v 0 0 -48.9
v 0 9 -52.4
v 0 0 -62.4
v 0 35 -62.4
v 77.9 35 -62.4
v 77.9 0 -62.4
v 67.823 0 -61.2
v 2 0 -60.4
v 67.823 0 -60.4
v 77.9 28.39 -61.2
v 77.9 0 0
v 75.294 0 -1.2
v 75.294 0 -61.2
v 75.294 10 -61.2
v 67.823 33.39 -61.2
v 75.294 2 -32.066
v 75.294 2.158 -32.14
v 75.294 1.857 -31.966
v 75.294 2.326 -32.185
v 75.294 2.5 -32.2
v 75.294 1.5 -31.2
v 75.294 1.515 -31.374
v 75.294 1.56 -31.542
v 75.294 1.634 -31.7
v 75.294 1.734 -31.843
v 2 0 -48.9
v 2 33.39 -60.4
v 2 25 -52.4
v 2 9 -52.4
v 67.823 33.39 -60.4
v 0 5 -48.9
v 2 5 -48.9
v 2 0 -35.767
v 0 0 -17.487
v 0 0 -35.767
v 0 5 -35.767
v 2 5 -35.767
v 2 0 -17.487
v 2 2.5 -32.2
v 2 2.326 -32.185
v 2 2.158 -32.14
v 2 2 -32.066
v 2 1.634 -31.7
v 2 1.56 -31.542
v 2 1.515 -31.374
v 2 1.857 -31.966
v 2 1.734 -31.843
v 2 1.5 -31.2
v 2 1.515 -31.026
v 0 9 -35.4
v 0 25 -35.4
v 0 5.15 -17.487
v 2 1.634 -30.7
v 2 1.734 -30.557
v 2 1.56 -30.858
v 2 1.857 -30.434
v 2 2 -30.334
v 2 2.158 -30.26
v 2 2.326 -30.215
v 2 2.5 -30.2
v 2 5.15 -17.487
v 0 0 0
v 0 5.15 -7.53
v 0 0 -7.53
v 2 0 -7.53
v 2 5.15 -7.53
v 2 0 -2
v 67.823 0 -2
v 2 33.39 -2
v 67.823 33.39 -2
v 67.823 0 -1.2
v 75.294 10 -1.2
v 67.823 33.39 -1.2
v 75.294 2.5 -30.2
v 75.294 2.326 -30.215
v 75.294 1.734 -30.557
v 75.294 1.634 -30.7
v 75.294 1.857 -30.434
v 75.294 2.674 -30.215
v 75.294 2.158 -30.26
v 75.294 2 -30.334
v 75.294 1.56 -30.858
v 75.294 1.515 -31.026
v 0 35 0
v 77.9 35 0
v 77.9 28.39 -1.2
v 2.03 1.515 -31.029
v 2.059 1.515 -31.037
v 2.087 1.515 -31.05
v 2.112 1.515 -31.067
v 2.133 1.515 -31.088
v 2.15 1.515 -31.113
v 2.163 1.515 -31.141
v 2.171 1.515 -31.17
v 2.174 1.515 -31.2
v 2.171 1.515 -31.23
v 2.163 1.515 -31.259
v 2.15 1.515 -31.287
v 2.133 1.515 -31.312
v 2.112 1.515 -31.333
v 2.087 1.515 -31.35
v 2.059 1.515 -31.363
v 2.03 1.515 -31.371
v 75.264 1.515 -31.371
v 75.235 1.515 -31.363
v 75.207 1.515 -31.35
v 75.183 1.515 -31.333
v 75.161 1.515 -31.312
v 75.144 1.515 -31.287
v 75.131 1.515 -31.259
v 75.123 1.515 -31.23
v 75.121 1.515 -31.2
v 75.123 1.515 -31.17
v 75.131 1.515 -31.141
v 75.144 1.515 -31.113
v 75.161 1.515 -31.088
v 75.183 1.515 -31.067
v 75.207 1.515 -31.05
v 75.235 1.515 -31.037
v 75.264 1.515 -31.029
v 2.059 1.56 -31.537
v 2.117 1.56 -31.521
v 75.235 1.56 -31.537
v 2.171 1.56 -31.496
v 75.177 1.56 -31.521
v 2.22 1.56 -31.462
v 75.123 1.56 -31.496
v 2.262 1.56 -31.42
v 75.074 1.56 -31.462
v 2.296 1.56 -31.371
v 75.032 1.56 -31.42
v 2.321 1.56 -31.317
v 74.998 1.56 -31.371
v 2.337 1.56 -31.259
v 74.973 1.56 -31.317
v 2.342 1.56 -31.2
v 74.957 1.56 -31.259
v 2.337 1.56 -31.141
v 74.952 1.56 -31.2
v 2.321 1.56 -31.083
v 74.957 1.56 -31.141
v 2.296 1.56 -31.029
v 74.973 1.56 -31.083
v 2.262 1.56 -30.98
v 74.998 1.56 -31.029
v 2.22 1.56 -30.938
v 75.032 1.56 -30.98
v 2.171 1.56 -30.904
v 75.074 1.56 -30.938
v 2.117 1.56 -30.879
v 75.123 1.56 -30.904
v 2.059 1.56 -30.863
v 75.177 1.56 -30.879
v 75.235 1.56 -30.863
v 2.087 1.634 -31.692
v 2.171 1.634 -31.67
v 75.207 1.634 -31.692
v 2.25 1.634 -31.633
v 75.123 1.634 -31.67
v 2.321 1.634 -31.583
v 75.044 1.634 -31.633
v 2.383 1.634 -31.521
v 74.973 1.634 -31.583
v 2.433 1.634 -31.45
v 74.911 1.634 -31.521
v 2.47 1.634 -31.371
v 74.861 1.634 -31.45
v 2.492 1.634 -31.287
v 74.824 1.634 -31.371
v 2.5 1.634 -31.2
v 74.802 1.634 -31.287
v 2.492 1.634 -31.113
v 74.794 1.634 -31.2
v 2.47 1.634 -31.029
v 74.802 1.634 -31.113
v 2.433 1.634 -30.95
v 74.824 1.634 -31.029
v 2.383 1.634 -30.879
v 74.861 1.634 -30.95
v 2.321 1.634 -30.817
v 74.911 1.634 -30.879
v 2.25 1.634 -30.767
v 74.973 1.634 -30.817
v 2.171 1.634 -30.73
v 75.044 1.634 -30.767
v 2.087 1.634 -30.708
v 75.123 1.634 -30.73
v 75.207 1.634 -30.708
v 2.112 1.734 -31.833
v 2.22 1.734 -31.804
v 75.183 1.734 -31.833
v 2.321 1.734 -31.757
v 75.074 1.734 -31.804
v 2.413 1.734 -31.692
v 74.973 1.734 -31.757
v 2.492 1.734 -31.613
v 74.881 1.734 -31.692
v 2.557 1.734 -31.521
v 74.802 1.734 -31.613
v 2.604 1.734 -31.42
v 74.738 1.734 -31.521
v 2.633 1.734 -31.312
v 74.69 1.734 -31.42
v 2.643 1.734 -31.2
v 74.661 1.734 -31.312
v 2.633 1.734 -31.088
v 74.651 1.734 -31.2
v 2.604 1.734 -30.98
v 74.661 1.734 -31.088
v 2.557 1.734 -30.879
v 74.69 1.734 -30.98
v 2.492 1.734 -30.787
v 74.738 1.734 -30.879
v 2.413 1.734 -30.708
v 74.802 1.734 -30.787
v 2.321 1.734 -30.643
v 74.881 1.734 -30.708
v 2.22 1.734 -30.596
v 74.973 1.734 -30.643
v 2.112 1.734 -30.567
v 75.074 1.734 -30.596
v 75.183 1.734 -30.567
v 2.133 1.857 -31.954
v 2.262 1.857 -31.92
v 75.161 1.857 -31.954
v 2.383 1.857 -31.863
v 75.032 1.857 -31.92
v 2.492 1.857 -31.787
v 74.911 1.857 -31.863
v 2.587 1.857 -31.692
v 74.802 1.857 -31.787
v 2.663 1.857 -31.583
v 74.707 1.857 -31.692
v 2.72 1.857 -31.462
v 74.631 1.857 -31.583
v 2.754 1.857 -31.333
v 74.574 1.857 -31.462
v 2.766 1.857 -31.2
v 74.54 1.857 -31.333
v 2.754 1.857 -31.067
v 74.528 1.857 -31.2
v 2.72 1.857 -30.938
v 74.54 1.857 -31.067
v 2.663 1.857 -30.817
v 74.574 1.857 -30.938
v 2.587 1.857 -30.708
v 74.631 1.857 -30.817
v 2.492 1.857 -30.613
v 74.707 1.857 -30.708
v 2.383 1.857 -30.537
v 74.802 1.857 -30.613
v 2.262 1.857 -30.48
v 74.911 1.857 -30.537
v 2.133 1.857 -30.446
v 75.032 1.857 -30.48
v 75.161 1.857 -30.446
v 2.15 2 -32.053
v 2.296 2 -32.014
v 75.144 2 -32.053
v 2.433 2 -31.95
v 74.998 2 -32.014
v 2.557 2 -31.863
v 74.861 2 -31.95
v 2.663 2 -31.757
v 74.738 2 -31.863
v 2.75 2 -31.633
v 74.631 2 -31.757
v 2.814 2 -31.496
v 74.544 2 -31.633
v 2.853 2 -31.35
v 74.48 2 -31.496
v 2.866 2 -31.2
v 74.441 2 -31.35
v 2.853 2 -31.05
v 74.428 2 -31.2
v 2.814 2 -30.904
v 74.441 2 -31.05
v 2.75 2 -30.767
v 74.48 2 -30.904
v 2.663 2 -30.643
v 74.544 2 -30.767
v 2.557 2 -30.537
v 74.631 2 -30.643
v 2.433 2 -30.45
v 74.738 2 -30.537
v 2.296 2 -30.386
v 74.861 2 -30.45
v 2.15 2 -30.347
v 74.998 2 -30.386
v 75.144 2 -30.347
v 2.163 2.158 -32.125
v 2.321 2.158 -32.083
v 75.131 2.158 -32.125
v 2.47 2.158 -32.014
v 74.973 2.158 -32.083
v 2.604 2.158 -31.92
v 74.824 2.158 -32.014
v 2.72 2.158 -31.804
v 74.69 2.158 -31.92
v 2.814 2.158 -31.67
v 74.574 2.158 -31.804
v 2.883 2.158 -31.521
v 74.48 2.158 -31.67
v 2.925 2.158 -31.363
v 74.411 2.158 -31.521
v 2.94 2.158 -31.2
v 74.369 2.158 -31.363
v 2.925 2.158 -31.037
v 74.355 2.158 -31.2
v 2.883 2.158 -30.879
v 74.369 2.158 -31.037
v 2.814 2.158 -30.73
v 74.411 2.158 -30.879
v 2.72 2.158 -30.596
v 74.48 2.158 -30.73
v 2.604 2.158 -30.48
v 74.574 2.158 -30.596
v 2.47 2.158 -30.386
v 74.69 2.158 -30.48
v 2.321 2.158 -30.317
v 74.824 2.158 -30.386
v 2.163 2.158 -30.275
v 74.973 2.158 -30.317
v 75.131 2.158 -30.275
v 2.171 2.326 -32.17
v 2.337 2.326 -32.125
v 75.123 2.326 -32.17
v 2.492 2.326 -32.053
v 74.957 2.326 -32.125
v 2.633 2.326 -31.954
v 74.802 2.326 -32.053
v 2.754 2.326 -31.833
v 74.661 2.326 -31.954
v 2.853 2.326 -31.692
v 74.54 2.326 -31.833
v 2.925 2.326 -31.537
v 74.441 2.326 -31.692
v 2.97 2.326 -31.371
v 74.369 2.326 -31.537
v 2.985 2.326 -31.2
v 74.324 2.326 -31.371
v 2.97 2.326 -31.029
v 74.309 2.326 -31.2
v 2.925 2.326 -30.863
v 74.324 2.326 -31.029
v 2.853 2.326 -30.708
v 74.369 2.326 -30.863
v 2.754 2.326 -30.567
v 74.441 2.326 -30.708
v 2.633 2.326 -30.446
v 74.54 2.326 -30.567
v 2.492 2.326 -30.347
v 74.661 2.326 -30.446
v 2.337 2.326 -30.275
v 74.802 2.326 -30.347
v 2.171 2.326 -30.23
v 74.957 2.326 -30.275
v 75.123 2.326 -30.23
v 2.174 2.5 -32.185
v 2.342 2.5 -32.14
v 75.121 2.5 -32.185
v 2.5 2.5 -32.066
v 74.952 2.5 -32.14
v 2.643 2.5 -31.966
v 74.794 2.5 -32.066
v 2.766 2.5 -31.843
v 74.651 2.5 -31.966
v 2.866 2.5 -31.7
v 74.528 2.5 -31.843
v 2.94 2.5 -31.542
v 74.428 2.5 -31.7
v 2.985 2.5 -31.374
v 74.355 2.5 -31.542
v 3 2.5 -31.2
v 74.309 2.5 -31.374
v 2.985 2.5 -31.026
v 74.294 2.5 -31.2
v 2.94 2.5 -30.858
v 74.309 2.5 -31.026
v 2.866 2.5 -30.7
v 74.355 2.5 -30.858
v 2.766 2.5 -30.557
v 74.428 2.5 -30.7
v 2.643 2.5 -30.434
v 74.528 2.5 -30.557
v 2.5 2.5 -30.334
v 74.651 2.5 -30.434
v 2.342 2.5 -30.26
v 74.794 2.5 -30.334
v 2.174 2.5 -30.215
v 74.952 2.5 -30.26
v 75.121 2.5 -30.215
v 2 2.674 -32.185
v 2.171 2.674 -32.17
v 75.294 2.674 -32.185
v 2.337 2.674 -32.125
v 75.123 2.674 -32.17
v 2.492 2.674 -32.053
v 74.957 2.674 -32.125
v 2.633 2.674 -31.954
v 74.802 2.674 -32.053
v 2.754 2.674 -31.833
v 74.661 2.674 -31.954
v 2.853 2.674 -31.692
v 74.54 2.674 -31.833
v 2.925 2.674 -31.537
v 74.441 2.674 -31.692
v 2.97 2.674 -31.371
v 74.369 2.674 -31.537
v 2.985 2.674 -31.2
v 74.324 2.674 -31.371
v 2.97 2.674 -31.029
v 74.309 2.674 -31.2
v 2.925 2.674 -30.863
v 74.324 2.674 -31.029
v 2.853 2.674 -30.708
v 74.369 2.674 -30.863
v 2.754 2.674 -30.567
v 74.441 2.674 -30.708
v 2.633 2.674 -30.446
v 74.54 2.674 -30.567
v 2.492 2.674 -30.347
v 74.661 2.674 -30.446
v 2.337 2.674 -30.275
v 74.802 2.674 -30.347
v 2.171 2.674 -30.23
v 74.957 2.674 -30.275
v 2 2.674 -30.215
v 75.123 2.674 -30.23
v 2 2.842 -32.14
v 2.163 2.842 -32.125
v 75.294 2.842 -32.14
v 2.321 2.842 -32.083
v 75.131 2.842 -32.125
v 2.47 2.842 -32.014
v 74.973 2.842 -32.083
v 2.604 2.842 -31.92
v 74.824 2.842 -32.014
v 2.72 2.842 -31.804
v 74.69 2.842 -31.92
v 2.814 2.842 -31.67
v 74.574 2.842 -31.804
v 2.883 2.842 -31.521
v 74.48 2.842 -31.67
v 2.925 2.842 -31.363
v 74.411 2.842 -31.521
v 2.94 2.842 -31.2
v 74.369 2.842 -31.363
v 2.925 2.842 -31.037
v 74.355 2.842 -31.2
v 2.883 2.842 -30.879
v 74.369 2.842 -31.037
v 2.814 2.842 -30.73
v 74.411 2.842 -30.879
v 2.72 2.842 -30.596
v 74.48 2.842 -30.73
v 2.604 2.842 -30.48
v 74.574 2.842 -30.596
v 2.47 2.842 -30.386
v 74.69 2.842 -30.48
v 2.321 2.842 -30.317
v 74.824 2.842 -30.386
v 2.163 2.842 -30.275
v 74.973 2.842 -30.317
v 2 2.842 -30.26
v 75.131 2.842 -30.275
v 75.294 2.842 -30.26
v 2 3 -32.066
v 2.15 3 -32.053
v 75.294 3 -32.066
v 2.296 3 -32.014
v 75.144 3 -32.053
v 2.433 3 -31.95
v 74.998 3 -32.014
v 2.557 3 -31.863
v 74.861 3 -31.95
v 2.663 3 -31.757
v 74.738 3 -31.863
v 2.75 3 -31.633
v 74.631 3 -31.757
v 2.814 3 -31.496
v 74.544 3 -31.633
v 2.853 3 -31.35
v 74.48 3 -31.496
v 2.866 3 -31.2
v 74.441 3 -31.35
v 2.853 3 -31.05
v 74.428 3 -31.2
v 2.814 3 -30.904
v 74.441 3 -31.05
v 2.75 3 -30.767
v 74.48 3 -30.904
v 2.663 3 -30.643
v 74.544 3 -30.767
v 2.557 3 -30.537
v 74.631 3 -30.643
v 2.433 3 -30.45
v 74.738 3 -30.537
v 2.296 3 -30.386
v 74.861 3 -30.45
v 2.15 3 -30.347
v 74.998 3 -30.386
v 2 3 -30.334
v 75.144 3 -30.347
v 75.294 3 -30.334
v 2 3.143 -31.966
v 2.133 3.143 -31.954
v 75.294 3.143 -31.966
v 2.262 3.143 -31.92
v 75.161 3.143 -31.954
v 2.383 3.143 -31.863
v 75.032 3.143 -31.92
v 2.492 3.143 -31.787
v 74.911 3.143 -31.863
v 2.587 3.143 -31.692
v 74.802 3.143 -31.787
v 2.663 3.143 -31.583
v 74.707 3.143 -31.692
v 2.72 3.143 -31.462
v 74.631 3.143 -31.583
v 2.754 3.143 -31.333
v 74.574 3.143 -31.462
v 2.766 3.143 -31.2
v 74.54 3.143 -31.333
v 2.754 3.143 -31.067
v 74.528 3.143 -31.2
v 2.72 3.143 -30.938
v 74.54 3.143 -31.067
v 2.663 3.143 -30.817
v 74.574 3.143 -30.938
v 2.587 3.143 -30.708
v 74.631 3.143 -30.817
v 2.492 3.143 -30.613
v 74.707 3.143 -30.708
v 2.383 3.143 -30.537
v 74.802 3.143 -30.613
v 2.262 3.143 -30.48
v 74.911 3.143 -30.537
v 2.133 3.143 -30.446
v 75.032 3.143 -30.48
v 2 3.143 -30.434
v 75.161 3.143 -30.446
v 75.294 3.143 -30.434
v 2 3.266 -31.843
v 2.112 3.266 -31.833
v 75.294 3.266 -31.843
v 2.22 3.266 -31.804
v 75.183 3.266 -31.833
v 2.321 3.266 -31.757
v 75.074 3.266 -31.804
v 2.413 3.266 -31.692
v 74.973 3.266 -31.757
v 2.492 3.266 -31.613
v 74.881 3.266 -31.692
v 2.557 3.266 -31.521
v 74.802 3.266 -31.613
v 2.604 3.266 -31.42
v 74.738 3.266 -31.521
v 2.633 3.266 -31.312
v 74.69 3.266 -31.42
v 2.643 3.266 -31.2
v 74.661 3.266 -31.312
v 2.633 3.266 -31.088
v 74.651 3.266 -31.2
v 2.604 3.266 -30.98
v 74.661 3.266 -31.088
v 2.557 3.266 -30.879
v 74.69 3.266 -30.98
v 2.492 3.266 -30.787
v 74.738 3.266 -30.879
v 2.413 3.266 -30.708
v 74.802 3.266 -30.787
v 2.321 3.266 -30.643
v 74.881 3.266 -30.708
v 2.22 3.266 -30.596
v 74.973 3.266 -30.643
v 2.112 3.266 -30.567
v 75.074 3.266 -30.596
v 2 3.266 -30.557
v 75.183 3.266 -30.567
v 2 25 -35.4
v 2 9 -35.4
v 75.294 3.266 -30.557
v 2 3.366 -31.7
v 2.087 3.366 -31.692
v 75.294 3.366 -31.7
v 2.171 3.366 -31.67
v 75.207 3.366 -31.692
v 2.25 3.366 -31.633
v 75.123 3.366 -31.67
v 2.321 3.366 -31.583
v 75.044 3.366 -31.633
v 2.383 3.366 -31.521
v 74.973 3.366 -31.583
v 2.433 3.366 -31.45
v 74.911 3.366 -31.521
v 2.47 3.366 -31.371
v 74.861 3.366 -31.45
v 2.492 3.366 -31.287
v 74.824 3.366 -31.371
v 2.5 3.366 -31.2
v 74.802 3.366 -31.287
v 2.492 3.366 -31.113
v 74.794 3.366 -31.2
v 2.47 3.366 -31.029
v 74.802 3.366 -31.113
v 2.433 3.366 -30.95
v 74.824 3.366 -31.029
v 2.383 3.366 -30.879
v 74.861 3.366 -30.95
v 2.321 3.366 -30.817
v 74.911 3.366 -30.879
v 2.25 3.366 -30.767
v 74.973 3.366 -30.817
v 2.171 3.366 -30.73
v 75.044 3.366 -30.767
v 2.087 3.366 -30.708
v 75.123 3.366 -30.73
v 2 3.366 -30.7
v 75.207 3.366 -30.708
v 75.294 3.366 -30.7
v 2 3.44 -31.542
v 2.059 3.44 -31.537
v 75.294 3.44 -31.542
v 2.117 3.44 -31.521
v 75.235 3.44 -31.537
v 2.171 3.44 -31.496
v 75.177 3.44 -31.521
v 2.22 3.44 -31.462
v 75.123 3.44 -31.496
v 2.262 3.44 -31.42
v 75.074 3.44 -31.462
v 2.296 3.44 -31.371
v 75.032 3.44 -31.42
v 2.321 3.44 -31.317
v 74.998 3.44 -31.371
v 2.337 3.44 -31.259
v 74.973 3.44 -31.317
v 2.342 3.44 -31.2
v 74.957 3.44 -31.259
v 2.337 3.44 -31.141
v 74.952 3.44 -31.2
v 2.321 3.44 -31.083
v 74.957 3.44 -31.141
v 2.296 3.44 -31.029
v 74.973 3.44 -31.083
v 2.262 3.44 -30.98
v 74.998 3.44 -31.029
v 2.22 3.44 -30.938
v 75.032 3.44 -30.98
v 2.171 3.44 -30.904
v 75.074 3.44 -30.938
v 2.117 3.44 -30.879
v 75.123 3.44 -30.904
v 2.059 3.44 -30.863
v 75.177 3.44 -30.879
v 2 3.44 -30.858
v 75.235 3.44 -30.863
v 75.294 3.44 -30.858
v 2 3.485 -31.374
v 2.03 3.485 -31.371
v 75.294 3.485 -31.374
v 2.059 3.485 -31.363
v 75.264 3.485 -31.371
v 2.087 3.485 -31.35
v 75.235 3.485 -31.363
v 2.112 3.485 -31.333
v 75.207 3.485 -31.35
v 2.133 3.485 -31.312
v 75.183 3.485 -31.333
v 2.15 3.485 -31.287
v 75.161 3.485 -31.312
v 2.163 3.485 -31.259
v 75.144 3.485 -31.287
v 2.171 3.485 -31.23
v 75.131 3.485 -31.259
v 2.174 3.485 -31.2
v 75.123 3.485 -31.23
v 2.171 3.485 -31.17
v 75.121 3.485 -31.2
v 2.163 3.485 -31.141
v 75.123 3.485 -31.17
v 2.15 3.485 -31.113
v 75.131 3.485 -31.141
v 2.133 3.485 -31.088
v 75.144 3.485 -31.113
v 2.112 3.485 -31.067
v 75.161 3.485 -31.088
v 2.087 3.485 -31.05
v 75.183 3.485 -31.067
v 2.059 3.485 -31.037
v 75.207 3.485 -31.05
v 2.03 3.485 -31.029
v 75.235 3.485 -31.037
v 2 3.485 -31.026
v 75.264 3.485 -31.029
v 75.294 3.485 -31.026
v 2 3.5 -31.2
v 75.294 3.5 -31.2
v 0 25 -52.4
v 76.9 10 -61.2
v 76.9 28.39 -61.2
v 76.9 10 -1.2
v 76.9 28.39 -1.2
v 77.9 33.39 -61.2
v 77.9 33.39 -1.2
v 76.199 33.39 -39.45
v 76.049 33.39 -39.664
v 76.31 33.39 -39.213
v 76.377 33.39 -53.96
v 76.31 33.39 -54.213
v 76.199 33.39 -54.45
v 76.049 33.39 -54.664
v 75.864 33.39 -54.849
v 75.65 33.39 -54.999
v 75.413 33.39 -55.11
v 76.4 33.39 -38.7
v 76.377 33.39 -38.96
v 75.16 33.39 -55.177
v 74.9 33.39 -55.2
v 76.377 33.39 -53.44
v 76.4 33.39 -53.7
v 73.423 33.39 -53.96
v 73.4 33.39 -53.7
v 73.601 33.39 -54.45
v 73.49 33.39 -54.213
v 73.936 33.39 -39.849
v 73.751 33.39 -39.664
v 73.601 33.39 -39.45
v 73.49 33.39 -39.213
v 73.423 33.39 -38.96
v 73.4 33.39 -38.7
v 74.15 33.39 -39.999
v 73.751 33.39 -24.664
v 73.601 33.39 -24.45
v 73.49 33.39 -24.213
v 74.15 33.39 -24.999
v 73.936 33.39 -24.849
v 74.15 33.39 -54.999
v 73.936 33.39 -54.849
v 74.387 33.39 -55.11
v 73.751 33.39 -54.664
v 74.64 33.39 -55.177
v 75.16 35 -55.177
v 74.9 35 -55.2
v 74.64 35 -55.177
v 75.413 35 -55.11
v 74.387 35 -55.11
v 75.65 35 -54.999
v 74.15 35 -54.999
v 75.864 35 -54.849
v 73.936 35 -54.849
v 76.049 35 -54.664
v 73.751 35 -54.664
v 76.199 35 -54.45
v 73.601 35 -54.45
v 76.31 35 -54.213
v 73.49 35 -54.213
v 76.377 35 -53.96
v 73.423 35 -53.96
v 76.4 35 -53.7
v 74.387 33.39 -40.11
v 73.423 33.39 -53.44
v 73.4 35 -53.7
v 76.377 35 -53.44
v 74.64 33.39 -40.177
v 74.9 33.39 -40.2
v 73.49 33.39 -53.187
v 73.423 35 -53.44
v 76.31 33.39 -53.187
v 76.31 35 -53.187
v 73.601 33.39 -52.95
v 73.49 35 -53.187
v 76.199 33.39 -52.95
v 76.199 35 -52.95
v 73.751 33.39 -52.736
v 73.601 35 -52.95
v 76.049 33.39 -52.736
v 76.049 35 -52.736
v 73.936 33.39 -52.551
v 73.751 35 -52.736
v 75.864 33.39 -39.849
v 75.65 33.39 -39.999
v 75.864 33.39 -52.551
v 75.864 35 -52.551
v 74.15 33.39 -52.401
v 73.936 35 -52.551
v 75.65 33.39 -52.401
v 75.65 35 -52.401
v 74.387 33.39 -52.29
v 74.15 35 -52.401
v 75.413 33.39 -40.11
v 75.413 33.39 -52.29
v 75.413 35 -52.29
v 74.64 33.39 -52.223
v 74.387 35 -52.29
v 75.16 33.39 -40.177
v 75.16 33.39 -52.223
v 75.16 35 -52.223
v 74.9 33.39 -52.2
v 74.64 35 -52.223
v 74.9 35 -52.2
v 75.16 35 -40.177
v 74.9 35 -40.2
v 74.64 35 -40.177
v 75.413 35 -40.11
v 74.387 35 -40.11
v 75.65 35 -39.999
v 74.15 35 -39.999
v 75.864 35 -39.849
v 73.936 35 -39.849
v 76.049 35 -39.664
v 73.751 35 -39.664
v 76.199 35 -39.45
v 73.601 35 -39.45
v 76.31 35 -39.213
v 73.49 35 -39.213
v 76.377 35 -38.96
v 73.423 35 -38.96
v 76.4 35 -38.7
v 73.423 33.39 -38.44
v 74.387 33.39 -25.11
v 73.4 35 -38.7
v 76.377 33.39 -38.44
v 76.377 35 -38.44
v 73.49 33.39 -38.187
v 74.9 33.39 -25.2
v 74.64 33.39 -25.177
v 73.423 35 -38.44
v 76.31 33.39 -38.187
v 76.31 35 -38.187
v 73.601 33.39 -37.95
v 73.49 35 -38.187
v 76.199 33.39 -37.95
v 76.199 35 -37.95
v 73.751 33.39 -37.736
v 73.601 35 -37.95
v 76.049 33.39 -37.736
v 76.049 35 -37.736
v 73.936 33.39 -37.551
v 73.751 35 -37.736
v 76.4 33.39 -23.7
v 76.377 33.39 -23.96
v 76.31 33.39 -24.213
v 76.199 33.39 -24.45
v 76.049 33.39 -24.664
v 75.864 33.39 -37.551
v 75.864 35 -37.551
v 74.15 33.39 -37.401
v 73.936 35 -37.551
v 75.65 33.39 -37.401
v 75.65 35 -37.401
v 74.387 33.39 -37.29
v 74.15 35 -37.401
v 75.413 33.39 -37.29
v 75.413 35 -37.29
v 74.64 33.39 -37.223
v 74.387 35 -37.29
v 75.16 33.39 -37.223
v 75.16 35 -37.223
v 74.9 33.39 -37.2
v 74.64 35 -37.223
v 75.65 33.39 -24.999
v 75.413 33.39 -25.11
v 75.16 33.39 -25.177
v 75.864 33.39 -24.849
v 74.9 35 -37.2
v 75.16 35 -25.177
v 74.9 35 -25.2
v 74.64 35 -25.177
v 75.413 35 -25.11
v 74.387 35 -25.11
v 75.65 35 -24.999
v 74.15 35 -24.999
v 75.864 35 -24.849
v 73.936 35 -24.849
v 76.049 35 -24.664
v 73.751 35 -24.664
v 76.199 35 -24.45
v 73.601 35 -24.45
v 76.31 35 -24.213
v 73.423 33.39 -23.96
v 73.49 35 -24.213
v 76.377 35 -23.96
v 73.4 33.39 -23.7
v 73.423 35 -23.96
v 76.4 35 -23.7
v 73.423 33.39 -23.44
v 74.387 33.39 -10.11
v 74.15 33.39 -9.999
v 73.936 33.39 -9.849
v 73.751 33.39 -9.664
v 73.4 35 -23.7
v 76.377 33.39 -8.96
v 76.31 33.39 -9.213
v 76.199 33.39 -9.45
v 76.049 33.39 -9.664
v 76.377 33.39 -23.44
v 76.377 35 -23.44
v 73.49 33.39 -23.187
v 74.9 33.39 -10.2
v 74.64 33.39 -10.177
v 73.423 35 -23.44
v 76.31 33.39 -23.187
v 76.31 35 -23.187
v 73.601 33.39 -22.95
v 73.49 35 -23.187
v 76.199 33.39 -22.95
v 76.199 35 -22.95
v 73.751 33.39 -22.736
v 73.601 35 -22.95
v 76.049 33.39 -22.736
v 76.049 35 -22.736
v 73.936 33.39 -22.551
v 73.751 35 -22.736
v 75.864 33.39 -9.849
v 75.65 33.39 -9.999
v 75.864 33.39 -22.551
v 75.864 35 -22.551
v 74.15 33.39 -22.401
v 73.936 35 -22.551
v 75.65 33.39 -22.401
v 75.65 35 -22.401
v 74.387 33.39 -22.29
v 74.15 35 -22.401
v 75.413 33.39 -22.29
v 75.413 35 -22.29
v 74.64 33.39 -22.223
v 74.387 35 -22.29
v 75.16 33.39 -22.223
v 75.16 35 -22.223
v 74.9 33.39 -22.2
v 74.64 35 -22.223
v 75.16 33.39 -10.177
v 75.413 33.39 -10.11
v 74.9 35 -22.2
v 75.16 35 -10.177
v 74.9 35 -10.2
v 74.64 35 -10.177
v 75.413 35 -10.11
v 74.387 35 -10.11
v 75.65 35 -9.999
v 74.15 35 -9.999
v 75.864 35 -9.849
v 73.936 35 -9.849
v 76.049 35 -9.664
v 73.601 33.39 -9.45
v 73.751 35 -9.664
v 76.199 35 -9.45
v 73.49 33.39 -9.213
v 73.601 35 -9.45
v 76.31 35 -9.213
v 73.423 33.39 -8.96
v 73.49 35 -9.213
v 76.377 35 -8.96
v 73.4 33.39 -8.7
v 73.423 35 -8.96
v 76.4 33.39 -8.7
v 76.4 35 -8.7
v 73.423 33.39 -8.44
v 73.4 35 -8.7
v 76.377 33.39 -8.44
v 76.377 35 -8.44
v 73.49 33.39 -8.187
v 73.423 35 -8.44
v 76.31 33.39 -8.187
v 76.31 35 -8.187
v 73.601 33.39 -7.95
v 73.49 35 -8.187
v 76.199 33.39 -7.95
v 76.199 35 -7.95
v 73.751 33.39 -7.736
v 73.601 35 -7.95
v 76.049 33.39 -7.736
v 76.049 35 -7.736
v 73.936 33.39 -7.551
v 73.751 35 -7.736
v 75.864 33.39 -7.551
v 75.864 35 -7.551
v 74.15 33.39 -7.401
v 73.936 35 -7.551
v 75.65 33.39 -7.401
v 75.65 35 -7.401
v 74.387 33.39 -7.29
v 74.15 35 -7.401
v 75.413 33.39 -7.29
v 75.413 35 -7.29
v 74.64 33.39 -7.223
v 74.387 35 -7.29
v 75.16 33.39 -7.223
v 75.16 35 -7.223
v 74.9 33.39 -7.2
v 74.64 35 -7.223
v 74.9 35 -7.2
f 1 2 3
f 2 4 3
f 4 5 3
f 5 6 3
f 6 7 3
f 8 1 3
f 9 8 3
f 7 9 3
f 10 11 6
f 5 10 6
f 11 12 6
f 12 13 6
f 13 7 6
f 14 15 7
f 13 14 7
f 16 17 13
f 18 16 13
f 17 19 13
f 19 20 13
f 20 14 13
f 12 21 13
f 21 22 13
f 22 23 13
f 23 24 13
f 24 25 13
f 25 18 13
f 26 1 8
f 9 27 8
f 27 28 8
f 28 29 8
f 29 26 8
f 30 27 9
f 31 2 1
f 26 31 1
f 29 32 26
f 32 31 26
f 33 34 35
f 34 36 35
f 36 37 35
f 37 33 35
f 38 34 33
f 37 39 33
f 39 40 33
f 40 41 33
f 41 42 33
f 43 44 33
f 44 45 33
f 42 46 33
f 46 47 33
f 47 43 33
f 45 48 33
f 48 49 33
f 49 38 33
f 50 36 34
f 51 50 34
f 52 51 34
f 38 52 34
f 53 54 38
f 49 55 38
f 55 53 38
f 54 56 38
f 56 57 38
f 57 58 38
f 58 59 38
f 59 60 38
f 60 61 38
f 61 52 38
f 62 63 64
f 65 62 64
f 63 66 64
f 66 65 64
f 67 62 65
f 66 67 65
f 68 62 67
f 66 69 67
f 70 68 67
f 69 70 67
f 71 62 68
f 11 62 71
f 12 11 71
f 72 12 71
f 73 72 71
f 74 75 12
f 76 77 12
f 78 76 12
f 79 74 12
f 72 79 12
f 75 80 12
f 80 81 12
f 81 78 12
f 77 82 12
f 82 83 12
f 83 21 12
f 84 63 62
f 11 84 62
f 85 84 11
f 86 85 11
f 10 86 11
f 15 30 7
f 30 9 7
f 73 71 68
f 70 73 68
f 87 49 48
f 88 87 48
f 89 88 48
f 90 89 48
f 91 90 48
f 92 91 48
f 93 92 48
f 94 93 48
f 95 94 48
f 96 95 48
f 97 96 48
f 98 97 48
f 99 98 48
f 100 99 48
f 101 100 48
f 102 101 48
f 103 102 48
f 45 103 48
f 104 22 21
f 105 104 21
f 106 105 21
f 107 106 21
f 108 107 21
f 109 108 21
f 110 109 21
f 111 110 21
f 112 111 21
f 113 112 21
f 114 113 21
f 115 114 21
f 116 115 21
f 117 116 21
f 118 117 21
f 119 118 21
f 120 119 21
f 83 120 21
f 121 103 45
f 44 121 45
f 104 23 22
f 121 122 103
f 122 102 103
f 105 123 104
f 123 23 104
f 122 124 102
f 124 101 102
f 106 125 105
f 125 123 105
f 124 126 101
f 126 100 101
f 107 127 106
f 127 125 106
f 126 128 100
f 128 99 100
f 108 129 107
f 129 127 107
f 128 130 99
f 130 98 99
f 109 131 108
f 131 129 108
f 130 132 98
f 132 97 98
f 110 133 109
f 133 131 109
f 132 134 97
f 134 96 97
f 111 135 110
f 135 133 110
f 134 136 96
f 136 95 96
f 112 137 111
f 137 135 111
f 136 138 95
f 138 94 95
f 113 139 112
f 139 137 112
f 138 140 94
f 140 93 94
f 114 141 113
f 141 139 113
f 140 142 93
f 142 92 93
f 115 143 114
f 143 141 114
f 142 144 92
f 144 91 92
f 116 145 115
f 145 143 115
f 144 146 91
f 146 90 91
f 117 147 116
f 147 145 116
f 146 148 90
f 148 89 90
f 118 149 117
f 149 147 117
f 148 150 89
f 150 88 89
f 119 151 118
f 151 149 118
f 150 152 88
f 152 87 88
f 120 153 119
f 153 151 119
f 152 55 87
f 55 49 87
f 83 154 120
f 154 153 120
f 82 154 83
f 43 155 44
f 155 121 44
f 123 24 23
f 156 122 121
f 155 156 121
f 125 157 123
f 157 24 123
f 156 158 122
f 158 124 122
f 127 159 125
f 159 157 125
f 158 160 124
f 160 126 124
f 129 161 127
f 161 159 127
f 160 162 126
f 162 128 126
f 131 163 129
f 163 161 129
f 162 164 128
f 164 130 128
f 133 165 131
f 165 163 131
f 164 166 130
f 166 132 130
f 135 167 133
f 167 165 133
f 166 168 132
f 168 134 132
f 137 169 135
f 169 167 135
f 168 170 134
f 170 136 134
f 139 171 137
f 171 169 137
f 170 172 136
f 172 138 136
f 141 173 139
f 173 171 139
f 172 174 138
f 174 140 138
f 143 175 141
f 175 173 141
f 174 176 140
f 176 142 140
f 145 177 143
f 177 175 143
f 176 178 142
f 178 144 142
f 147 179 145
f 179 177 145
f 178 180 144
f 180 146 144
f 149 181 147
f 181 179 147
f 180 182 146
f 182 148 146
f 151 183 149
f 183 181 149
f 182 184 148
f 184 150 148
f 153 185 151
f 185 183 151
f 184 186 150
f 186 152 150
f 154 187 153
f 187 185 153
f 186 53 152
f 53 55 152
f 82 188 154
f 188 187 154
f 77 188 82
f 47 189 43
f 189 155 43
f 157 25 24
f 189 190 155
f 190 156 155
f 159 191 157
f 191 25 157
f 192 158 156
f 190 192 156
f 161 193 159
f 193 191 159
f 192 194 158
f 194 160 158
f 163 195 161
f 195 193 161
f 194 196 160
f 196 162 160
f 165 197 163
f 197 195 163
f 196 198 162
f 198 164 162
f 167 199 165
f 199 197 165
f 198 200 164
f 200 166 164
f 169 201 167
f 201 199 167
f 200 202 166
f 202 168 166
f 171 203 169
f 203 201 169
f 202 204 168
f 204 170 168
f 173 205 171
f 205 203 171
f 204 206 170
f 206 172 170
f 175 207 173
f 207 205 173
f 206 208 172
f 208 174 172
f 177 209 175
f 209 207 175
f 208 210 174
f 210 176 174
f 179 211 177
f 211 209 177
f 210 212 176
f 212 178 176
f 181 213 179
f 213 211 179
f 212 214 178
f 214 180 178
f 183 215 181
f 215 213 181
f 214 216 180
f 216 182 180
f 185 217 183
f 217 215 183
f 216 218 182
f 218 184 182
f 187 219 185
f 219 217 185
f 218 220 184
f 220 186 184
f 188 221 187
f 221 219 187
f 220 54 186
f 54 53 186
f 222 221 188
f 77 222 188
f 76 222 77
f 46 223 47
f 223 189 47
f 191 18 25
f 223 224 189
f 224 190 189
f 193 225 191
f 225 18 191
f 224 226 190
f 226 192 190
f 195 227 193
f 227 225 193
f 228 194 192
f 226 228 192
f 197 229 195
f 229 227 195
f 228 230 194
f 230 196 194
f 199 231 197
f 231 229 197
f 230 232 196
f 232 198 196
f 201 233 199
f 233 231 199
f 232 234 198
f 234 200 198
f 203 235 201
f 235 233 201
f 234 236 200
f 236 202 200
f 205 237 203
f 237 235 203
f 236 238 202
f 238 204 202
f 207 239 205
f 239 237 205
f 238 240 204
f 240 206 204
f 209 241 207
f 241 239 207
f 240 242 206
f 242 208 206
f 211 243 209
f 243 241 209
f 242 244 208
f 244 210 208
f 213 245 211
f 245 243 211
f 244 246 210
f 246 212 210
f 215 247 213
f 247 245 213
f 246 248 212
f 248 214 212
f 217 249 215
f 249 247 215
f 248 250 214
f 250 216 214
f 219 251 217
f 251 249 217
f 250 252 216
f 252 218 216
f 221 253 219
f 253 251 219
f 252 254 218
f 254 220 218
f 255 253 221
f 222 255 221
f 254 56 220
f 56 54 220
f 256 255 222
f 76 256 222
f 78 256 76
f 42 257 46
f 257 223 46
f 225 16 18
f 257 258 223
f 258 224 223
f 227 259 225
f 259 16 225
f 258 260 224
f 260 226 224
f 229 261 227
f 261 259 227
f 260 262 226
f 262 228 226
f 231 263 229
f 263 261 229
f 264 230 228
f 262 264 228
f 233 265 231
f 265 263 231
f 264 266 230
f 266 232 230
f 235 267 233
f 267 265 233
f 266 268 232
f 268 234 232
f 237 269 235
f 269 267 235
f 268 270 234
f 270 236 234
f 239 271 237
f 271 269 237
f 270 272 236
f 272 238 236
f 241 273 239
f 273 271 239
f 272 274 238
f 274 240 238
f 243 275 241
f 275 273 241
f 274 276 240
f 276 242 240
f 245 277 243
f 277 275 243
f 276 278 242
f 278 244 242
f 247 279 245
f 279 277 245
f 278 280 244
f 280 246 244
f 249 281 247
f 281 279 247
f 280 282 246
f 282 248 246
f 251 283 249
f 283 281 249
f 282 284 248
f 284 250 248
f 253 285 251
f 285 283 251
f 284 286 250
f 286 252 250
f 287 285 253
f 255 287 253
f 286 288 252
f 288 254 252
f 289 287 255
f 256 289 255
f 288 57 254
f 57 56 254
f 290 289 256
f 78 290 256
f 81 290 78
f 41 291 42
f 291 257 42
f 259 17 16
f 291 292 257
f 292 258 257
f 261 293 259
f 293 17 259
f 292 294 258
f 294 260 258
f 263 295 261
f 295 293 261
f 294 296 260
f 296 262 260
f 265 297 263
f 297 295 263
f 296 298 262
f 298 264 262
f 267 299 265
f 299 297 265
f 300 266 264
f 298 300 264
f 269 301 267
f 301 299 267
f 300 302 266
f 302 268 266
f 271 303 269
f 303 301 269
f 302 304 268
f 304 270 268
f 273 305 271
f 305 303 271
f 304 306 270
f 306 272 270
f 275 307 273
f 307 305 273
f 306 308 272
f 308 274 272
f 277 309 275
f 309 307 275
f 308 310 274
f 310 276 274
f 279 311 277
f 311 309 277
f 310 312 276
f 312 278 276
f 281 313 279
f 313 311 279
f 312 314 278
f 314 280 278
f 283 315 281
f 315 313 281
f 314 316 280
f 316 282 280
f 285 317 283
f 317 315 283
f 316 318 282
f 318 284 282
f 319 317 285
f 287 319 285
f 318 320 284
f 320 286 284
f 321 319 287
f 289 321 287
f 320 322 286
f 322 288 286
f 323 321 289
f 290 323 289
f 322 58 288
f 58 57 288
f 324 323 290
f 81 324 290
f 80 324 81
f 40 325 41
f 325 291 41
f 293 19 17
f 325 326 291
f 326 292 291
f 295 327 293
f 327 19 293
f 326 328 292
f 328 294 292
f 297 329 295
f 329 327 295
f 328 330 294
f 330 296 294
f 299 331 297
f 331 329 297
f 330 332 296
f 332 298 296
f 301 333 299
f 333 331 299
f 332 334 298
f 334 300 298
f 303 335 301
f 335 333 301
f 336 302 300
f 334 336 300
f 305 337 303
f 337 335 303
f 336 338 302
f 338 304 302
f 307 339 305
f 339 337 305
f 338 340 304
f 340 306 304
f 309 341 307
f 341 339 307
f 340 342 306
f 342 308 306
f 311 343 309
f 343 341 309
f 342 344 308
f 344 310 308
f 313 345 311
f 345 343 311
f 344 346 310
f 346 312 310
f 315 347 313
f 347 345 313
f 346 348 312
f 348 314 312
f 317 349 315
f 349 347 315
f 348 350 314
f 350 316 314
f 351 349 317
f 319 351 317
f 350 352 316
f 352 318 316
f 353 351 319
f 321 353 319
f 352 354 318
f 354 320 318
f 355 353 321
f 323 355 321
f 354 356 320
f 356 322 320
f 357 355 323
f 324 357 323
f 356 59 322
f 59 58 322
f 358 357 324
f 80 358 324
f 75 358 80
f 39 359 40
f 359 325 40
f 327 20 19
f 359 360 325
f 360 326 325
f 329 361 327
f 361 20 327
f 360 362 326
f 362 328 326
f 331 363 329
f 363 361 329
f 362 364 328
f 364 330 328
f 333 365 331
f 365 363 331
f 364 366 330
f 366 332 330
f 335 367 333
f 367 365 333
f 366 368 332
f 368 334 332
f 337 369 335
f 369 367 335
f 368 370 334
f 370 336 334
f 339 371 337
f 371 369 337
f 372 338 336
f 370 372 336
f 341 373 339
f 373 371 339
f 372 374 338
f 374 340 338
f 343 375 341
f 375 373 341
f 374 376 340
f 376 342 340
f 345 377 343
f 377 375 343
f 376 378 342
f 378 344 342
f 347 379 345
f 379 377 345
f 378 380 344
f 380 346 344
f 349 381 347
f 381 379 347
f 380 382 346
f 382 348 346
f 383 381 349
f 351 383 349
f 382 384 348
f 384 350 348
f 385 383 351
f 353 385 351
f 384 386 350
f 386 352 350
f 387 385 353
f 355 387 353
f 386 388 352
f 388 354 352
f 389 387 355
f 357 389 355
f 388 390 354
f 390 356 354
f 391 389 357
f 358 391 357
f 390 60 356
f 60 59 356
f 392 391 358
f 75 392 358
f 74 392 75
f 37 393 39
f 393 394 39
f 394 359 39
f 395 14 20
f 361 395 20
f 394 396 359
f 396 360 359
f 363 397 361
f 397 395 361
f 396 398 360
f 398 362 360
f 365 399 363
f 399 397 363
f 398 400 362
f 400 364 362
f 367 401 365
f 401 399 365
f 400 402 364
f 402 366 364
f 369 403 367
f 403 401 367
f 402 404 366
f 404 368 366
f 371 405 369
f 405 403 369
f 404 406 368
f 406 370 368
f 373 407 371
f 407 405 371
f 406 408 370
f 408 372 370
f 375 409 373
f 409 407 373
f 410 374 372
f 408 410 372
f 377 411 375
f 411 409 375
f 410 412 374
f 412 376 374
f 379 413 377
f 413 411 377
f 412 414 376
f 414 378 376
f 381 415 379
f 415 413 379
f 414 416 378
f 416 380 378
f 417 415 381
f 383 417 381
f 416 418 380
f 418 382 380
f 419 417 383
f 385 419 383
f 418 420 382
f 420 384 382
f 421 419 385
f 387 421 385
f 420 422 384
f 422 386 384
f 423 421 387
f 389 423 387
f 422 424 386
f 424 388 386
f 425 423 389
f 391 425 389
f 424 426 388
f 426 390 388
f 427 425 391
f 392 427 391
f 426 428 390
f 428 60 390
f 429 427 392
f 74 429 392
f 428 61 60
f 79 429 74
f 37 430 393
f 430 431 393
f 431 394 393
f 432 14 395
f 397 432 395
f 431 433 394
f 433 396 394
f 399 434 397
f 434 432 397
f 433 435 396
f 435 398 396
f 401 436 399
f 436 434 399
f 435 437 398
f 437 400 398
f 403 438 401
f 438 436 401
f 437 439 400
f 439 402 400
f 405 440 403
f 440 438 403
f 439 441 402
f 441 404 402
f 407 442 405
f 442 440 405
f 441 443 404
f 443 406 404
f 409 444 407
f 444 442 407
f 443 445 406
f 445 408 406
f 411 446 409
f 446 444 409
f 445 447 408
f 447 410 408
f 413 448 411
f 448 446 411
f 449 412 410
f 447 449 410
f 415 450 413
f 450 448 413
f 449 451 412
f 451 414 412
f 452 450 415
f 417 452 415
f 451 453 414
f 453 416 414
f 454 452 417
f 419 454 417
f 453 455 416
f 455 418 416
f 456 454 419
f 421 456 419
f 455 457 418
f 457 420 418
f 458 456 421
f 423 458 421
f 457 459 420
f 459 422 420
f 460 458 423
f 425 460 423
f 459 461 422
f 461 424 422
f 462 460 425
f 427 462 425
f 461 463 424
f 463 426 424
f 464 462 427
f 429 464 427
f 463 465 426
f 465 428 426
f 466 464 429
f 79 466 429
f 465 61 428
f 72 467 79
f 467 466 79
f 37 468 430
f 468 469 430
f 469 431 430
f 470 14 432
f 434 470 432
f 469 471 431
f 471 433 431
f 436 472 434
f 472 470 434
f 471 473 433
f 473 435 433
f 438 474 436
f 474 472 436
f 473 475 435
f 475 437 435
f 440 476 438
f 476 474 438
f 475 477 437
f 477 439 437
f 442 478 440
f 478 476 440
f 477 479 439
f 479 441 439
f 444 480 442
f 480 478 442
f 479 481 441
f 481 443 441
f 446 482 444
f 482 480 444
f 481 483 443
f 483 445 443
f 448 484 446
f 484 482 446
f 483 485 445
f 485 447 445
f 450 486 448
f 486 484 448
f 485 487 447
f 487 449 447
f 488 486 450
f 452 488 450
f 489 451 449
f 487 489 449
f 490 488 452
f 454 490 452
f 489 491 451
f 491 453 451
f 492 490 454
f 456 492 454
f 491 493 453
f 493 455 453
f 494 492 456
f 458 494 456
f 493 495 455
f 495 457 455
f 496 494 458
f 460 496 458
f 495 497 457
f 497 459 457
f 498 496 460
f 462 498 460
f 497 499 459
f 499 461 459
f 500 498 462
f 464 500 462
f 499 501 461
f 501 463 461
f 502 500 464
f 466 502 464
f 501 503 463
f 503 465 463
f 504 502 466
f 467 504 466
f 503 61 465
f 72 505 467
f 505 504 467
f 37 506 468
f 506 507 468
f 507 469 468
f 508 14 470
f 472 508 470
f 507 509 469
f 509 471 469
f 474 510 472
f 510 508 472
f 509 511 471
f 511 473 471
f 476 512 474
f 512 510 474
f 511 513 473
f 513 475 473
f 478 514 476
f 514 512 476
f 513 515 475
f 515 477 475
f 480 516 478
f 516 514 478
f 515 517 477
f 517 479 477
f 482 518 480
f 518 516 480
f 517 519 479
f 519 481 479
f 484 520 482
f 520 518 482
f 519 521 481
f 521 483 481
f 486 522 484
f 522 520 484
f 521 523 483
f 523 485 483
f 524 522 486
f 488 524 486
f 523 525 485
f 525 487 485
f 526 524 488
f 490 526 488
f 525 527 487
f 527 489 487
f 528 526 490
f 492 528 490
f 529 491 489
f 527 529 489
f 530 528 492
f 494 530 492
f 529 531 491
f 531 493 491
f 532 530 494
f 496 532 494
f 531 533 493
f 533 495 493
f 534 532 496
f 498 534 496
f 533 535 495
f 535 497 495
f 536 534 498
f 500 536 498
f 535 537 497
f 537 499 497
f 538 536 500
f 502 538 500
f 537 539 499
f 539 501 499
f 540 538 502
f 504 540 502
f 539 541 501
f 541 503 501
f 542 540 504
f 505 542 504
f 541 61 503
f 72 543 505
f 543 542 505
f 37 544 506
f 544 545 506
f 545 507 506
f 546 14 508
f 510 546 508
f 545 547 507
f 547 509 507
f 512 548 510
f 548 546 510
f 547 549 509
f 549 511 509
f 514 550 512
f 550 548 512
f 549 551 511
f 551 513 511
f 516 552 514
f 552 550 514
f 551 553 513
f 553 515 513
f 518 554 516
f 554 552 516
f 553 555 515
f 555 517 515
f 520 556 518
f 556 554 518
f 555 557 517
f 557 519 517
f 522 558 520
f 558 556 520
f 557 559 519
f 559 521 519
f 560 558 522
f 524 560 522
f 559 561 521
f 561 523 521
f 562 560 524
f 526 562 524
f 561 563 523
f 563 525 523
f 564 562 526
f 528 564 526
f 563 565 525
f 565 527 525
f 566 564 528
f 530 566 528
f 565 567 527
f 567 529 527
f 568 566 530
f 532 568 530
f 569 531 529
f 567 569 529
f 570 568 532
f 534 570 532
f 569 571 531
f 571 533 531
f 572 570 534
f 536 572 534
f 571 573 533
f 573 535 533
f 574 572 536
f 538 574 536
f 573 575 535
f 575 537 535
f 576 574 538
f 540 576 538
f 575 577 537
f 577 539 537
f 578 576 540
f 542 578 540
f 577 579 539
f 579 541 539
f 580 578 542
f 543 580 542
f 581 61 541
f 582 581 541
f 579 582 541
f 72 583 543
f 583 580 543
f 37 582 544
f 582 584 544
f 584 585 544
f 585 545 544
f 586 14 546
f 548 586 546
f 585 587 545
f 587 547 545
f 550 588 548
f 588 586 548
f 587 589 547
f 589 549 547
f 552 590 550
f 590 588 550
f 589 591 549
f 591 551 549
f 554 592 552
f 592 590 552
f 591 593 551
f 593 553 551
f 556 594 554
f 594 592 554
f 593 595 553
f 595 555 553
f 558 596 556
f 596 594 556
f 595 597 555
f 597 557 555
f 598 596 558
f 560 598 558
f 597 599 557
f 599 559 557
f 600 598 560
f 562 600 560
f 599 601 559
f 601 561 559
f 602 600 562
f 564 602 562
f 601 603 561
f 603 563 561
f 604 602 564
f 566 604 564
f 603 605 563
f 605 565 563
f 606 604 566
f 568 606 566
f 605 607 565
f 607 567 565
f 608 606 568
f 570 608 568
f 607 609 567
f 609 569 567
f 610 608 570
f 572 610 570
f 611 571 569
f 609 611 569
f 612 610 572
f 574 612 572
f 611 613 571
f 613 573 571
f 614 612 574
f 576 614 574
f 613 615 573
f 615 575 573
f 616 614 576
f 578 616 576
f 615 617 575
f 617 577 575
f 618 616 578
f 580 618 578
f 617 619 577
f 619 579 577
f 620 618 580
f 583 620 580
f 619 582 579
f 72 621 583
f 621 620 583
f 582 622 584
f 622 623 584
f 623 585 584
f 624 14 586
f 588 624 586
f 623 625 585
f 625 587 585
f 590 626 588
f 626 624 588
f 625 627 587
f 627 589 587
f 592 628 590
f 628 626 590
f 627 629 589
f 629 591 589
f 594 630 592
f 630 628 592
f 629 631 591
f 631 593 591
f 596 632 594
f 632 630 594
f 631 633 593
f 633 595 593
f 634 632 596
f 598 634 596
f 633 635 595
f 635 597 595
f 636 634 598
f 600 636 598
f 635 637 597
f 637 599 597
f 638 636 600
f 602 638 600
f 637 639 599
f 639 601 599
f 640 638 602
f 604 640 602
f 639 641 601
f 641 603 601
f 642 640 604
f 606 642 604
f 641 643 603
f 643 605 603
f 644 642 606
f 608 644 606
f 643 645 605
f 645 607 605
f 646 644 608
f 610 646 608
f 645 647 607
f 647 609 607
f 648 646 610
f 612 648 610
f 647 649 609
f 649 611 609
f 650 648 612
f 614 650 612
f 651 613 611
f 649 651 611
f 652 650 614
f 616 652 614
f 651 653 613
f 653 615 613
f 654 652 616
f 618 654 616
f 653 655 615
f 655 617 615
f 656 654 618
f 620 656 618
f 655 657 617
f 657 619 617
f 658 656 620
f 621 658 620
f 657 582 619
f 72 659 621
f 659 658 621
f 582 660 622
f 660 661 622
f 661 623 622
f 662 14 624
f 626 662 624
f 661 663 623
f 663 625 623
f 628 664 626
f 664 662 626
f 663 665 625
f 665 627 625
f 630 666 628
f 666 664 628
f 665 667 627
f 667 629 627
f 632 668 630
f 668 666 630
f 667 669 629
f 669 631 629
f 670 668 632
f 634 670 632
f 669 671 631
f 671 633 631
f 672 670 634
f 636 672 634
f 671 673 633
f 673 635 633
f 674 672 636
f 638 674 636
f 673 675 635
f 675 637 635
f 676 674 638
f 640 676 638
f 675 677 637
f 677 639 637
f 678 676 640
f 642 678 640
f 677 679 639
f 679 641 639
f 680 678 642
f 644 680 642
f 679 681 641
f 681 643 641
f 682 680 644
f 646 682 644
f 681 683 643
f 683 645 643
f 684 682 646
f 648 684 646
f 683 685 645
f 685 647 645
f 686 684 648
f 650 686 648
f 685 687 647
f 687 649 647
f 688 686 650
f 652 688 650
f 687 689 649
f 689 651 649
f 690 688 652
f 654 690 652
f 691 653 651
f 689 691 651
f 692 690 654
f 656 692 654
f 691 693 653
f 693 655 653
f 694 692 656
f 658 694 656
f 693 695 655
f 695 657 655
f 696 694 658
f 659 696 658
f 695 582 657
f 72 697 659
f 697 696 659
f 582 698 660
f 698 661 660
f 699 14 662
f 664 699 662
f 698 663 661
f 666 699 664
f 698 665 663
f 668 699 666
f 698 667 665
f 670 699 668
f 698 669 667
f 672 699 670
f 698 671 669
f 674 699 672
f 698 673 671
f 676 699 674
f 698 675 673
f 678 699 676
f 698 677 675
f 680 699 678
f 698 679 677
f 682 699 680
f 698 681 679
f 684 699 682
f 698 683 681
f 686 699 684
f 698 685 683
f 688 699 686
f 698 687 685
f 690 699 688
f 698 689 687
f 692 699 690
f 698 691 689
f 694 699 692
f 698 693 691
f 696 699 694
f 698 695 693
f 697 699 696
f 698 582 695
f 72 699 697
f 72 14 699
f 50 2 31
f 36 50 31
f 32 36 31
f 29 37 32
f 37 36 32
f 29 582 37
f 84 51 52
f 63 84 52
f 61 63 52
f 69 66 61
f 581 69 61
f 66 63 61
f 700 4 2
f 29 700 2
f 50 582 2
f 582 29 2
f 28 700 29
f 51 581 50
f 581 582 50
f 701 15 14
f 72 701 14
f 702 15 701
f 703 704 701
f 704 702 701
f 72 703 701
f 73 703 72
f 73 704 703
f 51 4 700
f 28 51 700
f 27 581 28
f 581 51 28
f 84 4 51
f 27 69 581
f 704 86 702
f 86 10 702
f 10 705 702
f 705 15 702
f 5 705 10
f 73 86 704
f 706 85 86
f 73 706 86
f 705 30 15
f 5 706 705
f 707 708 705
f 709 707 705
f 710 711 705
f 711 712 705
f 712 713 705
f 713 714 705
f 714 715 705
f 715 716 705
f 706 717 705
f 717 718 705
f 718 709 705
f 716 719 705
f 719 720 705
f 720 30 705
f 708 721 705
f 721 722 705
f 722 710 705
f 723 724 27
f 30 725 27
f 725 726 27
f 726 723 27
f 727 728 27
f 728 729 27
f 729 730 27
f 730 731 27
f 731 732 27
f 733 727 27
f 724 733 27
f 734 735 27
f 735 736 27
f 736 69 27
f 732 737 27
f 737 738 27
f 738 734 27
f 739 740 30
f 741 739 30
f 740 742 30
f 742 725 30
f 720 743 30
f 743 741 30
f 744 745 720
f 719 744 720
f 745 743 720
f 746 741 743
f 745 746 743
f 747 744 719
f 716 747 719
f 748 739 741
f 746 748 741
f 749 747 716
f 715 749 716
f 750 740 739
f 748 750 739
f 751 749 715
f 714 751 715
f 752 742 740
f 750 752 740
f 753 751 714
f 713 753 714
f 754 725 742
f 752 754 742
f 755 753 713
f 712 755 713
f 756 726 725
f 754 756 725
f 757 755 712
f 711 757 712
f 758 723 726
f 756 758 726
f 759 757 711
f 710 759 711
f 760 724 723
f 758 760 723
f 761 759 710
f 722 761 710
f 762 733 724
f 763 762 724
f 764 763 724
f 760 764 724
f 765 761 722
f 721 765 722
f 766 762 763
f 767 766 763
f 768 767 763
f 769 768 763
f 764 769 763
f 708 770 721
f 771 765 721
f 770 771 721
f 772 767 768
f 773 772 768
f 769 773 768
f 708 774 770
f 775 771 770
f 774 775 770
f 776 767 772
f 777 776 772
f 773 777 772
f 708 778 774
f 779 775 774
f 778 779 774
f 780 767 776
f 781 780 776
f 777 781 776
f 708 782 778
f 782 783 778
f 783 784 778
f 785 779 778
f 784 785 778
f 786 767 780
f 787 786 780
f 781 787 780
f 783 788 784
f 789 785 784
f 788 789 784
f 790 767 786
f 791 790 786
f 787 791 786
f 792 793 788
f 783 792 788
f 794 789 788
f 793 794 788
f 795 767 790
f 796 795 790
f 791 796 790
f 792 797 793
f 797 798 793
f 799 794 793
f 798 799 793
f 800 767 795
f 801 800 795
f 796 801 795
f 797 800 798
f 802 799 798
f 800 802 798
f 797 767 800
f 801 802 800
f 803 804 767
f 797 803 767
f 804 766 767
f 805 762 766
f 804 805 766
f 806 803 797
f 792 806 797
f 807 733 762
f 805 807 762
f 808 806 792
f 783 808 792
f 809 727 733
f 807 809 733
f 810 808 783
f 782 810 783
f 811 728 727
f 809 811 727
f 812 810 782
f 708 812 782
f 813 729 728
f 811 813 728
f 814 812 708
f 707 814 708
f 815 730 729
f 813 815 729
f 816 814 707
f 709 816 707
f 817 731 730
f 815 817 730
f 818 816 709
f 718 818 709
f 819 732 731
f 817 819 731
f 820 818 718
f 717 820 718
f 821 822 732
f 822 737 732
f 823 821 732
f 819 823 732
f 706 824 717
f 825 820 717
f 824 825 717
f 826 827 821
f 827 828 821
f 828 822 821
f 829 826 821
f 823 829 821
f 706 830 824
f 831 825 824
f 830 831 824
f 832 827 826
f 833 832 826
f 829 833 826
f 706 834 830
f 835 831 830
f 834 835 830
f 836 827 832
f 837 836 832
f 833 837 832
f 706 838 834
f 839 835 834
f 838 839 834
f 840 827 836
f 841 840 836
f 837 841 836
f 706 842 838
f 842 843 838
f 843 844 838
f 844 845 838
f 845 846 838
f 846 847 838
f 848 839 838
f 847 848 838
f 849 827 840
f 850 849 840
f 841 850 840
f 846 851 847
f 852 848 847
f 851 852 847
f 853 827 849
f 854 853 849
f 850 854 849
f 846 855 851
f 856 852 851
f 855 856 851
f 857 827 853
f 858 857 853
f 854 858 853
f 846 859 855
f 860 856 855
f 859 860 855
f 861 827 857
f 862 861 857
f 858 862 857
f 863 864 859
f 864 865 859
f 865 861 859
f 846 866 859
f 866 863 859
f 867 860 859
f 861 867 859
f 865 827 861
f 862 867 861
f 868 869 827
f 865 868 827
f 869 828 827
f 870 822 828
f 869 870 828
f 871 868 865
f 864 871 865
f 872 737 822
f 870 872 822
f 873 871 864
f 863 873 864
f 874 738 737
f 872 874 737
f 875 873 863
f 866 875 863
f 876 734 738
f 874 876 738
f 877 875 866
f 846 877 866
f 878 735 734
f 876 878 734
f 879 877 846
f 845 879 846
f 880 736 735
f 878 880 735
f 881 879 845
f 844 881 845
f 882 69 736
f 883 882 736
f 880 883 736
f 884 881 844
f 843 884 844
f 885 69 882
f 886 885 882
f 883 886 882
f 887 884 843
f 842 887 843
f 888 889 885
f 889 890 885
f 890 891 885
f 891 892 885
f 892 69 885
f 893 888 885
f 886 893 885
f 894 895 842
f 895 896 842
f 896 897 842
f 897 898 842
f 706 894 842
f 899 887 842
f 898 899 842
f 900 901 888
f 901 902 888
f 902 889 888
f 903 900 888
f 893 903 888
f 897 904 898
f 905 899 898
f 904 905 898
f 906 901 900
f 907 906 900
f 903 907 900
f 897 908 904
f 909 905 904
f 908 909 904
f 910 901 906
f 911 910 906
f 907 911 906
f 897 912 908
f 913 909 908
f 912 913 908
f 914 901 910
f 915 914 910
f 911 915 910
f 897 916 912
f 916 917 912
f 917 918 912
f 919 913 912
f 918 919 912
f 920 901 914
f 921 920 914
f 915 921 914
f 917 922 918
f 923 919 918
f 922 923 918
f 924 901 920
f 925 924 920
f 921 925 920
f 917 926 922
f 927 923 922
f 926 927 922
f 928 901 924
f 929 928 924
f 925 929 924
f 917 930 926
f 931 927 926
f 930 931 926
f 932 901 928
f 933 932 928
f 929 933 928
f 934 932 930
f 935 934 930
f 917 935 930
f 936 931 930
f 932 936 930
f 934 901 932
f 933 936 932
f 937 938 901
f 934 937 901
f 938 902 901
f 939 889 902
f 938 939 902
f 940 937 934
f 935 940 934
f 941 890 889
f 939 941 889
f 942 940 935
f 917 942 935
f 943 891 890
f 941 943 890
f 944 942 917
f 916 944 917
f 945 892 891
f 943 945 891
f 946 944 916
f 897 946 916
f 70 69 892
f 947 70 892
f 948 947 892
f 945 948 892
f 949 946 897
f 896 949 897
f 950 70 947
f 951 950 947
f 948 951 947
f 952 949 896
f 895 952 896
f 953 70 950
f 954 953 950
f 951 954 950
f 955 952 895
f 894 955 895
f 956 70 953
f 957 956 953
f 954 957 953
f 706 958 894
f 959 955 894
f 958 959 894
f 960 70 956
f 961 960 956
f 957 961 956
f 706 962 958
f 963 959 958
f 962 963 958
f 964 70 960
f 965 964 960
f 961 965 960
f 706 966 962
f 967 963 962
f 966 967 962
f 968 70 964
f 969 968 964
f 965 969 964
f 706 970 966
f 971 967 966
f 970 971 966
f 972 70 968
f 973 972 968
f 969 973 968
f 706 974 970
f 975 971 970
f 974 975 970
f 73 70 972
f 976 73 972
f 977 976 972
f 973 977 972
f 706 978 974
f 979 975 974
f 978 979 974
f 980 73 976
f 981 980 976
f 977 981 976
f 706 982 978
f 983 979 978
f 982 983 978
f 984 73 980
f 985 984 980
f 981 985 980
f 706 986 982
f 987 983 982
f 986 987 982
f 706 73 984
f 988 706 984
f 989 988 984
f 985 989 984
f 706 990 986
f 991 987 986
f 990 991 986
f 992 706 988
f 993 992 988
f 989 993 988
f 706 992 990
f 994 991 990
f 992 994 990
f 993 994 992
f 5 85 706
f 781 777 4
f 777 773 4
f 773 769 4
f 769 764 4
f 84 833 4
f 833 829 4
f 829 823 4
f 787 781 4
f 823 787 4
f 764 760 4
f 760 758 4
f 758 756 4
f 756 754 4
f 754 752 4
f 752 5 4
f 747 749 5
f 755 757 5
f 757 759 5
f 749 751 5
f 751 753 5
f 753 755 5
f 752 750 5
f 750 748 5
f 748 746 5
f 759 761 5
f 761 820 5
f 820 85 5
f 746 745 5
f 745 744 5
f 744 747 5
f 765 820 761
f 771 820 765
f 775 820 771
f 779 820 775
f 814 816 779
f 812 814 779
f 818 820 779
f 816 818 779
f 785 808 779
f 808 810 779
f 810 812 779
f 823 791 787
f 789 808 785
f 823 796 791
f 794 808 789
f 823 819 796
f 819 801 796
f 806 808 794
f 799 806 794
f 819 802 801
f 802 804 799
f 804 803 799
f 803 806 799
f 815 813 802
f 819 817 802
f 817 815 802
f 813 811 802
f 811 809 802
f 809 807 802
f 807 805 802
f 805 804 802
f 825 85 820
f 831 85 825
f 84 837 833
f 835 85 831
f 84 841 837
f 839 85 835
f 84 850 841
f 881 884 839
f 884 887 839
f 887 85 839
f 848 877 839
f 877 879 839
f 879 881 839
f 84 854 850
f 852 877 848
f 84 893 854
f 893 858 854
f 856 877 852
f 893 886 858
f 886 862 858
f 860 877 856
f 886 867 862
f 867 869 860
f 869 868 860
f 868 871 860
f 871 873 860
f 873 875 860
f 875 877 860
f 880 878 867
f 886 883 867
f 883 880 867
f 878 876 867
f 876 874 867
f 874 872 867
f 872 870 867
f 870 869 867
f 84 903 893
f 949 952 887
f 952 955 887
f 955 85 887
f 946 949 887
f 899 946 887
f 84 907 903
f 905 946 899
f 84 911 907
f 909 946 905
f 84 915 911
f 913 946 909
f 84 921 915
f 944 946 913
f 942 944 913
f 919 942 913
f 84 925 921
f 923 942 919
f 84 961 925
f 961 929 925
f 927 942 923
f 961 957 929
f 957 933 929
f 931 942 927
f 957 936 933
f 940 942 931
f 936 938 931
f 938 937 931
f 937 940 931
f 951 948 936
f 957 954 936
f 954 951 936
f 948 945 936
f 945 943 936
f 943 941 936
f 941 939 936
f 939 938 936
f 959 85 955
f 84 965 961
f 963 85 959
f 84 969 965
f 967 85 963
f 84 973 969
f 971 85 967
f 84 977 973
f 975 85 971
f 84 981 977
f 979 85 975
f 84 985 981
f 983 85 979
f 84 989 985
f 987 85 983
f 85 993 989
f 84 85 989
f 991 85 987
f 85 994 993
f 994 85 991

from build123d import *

# Parameters (mm, degrees)
SKETCH1_W           = 77.9
SKETCH1_H           = 62.4
BOSS_EXTRUDE1_DEPTH = 35
SKETCH4_W           = 73.9
SKETCH4_H           = 58.4
CUT_EXTRUDE1_DEPTH  = 33.39
SKETCH7_W           = 13.133474477
SKETCH7_H           = 5
CUT_EXTRUDE6_DEPTH  = 15
SKETCH11_W          = 9.956525523
SKETCH11_H          = 5.15
CUT_EXTRUDE8_DEPTH  = 10
SKETCH12_W          = 17
SKETCH12_H          = 16
CUT_EXTRUDE9_DEPTH  = 10
SKETCH14_W          = 60
SKETCH14_H          = 5
CUT_EXTRUDE10_DEPTH = 10
CUT_EXTRUDE12_START = -33.39
SKETCH16_W          = 9.076585482
SKETCH16_H          = 60
CUT_EXTRUDE12_DEPTH = 33.39
SKETCH15_R          = 1.5
CUT_EXTRUDE11_DEPTH = 10
SKETCH18_W          = 1.605745829
SKETCH18_H          = 60
BOSS_EXTRUDE2_DEPTH = 10


with BuildPart() as part:
    # Sketch1 → Boss-Extrude1 (new body)
    with BuildSketch(Plane(origin=(0, 0, 0), x_dir=(1, 0, 0), z_dir=(0, 1, 0))):
        with Locations((38.95, 31.2)):
            Rectangle(SKETCH1_W, SKETCH1_H)
    extrude(amount=BOSS_EXTRUDE1_DEPTH)

    # Sketch4 → Cut-Extrude1 (cut)
    with BuildSketch(Plane.XZ):
        with Locations((38.95, -31.2)):
            Rectangle(SKETCH4_W, SKETCH4_H)
    extrude(amount=-CUT_EXTRUDE1_DEPTH, mode=Mode.SUBTRACT)

    # Sketch7 → Cut-Extrude6 (cut)
    with BuildSketch(Plane.ZY):
        with Locations((-42.333262762, 2.5)):
            Rectangle(SKETCH7_W, SKETCH7_H)
    extrude(amount=-CUT_EXTRUDE6_DEPTH, mode=Mode.SUBTRACT)

    # Sketch11 → Cut-Extrude8 (cut)
    with BuildSketch(Plane.ZY):
        with Locations((-12.508262762, 2.575)):
            Rectangle(SKETCH11_W, SKETCH11_H)
    extrude(amount=-CUT_EXTRUDE8_DEPTH, mode=Mode.SUBTRACT)

    # Sketch12 → Cut-Extrude9 (cut)
    with BuildSketch(Plane.ZY):
        with Locations((-43.9, 17)):
            Rectangle(SKETCH12_W, SKETCH12_H)
    extrude(amount=-CUT_EXTRUDE9_DEPTH, mode=Mode.SUBTRACT)

    # Sketch14 → Cut-Extrude10 (cut)
    with BuildSketch(Plane(origin=(77.9, 0, 0), x_dir=(0, 0, -1), z_dir=(1, 0, 0))):
        with Locations((31.2, 30.89)):
            Rectangle(SKETCH14_W, SKETCH14_H)
    extrude(amount=-CUT_EXTRUDE10_DEPTH, mode=Mode.SUBTRACT)

    # Sketch16 → Cut-Extrude12 (cut)
    with BuildSketch(Plane(origin=(0, 0, 0), x_dir=(-1, 0, 0), z_dir=(0, -1, 0)).offset(CUT_EXTRUDE12_START)):
        with Locations((-72.361707259, 31.2)):
            Rectangle(SKETCH16_W, SKETCH16_H)
    extrude(amount=CUT_EXTRUDE12_DEPTH, mode=Mode.SUBTRACT)

    # Sketch15 → Cut-Extrude11 (cut)
    with BuildSketch(Plane(origin=(0, 33.39, 0), x_dir=(-1, 0, 0), z_dir=(0, -1, 0))):
        with Locations(Location((-74.9, 8.7, 0), (0, 0, 90))):
            Circle(SKETCH15_R)
        with Locations(Location((-74.9, 23.7, 0), (0, 0, 90))):
            Circle(SKETCH15_R)
        with Locations(Location((-74.9, 38.7, 0), (0, 0, 90))):
            Circle(SKETCH15_R)
        with Locations(Location((-74.9, 53.7, 0), (0, 0, 90))):
            Circle(SKETCH15_R)
    extrude(amount=-CUT_EXTRUDE11_DEPTH, mode=Mode.SUBTRACT)

    # Sketch18 → Boss-Extrude2 (add)
    with BuildSketch(Plane(origin=(0, 0, 0), x_dir=(-1, 0, 0), z_dir=(0, -1, 0))):
        with Locations((-76.097127086, 31.2)):
            Rectangle(SKETCH18_W, SKETCH18_H)
    extrude(amount=-BOSS_EXTRUDE2_DEPTH)

    # Sketch19 → Revolve2 (revolve)
    with BuildSketch(Plane.ZY.offset(-75.294254171)):
        with BuildLine():
            Line((-31.2, 3.5), (-31.2, 1.5))
            ThreePointArc((-31.2, 1.5), (-30.2, 2.5), (-31.2, 3.5))
        make_face()
    revolve(axis=Axis((75.294254171, 3.5, -31.2), (0, -1, 0)))

    # Sketch17 → Revolve4 (revolve)
    with BuildSketch(Plane.ZY.offset(-2)):
        with BuildLine():
            ThreePointArc((-31.2, 3.5), (-32.2, 2.5), (-31.2, 1.5))
            Line((-31.2, 1.5), (-31.2, 3.5))
        make_face()
    revolve(axis=Axis((2, 3.5, -31.2), (0, -1, 0)))


solid = part.part
